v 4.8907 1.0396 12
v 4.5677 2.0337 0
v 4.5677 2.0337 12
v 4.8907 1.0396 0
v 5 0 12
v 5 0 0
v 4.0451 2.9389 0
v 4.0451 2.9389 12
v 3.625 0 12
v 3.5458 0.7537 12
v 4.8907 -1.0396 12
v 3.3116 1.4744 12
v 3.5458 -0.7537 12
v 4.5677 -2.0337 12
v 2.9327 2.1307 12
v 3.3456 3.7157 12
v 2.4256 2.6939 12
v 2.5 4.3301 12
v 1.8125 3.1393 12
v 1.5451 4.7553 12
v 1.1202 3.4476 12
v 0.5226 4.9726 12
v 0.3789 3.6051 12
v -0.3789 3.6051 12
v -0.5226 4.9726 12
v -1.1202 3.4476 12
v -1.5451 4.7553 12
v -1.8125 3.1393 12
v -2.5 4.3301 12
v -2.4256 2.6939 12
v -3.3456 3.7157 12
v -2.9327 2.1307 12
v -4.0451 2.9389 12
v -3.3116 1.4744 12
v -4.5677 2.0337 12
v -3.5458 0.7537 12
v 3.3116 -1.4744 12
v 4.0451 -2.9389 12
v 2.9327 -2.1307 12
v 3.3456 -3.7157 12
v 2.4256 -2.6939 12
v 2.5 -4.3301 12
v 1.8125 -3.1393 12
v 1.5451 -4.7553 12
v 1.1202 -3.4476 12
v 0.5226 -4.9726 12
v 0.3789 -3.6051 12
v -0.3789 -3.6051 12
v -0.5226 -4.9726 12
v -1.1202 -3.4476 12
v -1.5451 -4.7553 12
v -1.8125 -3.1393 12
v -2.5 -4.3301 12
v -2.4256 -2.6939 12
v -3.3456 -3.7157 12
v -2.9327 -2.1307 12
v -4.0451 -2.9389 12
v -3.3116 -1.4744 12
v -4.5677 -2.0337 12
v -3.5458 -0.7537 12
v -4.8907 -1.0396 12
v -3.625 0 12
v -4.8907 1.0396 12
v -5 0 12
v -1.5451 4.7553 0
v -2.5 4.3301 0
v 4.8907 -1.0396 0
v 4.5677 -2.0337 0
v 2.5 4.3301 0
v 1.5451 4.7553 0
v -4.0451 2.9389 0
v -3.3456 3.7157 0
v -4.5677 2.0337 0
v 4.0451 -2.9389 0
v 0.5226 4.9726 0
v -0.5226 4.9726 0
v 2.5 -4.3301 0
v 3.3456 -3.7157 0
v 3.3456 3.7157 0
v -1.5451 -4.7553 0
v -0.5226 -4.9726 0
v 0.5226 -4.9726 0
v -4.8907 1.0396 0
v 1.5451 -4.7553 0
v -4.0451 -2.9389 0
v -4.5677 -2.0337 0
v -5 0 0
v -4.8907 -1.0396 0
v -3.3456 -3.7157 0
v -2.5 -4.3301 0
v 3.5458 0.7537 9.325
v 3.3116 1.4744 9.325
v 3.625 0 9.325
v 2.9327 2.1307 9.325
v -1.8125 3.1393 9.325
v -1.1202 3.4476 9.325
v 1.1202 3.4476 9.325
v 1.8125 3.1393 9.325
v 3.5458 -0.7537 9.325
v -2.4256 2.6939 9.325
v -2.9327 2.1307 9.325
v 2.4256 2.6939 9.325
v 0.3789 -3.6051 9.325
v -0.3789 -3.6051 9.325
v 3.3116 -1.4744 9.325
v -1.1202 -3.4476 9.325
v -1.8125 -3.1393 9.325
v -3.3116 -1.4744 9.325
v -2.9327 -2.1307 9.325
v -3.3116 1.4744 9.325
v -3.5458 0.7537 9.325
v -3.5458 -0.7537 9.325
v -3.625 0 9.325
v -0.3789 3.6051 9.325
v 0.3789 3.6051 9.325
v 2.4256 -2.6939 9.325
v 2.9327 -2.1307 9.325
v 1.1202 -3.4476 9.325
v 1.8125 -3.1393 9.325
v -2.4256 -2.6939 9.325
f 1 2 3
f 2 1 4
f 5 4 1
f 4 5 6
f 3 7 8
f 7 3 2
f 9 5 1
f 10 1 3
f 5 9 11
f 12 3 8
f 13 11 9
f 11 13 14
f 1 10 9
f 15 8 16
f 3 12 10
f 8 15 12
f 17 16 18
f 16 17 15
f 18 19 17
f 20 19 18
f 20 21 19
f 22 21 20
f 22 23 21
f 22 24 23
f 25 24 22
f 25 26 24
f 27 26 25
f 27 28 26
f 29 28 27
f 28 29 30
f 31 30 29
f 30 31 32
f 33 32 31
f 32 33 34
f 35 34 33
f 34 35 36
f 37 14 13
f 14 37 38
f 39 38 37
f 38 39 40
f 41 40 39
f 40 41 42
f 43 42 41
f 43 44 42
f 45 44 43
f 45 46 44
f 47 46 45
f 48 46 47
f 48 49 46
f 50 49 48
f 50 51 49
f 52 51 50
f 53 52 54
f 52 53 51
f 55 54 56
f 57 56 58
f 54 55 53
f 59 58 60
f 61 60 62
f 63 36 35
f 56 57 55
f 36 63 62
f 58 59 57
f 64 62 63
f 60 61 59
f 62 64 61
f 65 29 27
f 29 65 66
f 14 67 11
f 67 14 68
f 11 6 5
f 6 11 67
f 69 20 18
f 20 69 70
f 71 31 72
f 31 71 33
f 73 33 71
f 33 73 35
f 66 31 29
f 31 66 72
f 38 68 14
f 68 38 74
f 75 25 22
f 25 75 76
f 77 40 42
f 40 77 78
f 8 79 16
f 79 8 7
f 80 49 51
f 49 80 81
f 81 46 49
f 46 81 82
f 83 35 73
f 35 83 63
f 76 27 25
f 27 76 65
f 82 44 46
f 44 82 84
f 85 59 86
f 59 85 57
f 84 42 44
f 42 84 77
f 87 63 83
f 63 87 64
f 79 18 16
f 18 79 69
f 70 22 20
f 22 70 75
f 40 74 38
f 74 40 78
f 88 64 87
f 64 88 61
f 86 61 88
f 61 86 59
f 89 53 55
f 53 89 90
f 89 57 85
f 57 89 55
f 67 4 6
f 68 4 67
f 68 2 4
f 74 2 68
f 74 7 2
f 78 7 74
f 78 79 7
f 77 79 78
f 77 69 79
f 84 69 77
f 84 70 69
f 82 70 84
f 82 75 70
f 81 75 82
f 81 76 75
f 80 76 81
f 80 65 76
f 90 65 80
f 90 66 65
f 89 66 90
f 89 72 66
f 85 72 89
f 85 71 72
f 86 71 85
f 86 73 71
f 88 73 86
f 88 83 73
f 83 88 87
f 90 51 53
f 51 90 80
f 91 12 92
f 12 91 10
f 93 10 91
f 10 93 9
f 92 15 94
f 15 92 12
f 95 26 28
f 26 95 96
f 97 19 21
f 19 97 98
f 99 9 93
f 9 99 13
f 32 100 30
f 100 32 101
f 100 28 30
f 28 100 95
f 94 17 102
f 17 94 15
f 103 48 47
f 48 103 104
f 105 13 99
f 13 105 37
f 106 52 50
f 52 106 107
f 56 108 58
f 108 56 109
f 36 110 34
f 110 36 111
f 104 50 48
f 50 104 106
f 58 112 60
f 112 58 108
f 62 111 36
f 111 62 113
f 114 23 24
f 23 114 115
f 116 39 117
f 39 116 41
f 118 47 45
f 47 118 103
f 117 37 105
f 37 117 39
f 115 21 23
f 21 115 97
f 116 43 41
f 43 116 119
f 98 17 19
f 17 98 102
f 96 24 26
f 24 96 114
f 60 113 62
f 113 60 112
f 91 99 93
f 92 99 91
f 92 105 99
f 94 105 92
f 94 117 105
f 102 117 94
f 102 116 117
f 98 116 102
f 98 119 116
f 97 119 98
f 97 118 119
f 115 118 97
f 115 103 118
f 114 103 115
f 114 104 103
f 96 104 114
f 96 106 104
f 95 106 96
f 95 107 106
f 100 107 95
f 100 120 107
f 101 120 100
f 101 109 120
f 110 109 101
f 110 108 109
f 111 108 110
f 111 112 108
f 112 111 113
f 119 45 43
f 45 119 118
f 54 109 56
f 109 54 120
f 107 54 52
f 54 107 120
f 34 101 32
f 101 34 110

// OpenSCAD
// Holder for magnet to help attach to stepper motor
//
// Copyright (C) 2021  Kevin O'Connor <kevin@koconnor.net>
//
// This file may be distributed under the terms of the GNU GPLv3 license.

magnet_dia = 25.4 / 4 + .9;
magnet_height = 25.4 / 8;
opening_dia = 10;
holder_height = 12;
holder_offset = .5;
$fs = 0.5;

module magnet_holder() {
    difference() {
        cylinder(d=opening_dia, h=holder_height);
        translate([0, 0, holder_height - magnet_height + holder_offset])
        cylinder(d=magnet_dia, h=magnet_height);
    }
}

//
// Object selection
//

magnet_holder();
